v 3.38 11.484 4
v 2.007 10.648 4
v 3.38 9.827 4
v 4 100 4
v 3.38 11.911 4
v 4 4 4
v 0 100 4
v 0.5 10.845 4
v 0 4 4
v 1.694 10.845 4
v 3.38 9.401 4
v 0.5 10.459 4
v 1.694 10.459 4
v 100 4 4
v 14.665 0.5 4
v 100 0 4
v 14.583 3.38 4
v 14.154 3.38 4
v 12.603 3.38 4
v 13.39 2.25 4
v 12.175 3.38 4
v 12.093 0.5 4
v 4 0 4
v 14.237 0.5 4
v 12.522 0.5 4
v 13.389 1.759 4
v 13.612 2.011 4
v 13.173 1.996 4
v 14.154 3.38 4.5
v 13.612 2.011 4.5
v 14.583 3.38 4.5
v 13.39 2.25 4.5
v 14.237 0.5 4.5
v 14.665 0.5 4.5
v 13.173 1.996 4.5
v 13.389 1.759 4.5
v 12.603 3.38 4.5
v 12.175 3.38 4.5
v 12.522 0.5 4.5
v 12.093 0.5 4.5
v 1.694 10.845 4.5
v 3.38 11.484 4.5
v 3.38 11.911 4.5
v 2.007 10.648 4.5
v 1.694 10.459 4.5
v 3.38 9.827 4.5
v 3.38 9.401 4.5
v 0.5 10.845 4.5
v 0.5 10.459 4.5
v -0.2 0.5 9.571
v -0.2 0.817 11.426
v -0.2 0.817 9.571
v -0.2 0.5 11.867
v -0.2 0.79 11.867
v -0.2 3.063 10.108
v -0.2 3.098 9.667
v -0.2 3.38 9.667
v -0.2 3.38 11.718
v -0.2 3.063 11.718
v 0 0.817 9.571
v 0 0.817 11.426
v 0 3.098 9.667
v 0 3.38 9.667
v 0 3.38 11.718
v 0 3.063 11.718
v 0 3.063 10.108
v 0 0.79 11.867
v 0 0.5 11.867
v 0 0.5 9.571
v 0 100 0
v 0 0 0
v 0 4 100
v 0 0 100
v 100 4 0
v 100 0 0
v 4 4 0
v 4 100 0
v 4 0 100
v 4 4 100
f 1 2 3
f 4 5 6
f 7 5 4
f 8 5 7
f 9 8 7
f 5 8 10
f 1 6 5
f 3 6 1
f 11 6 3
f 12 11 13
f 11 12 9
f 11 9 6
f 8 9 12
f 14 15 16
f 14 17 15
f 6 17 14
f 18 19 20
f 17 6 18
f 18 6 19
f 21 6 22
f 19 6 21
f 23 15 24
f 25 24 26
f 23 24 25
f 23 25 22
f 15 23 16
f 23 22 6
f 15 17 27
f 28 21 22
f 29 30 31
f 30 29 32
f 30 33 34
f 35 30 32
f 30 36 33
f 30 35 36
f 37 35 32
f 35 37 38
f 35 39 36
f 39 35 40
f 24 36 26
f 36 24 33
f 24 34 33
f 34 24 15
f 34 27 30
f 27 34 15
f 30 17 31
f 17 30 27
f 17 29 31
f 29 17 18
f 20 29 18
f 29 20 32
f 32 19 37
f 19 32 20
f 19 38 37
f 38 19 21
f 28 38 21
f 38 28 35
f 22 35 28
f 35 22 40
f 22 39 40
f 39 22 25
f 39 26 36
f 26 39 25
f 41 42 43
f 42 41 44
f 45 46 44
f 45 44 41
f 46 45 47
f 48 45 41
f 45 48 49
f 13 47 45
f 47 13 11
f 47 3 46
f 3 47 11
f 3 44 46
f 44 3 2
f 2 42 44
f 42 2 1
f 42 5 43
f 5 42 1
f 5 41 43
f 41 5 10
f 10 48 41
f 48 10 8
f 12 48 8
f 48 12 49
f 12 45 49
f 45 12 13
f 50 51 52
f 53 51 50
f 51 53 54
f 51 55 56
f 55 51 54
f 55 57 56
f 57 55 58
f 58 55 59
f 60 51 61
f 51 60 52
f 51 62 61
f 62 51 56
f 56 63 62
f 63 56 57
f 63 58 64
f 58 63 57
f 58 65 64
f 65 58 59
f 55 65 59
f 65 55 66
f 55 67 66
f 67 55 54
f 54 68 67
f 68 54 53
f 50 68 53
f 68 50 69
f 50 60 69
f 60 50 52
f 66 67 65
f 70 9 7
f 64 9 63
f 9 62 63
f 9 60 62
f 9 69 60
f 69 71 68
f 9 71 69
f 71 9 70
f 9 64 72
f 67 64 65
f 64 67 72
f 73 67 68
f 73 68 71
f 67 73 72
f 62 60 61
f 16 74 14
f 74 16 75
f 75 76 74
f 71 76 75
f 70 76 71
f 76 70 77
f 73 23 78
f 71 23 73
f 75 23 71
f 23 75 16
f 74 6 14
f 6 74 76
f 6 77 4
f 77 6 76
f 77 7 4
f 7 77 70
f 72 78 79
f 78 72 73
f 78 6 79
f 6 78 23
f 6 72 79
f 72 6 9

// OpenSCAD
/* File: cal_xyz.scad
 * Calibration posts
 * Author: deh
 * Latest edit: 20180131
 */

len = 100;
wid = 4;
ht = 4;

// **** Id the part ***
module id()
{
 {
  font = "Liberation Sans:style=Bold Italic";
 translate([12,0.5, ht]) 
  rotate([0,0,0])
  linear_extrude(0.5)
   text("X",size = 3.0);

 translate([.5,12, ht]) 
  rotate([0,0,-90])
  linear_extrude(0.5)
   text("Y",size = 3.0);

 translate([-0.2,0.5, 12]) 
  rotate([0,90,0])
  linear_extrude(0.25)
   text("Z",size = 3.0);

 }
}

module total()
{
	cube([len,wid,ht],center=false);

	cube([wid,len,ht],center=false);

	cube([wid,ht,len],center=false);

id();
}
total();
